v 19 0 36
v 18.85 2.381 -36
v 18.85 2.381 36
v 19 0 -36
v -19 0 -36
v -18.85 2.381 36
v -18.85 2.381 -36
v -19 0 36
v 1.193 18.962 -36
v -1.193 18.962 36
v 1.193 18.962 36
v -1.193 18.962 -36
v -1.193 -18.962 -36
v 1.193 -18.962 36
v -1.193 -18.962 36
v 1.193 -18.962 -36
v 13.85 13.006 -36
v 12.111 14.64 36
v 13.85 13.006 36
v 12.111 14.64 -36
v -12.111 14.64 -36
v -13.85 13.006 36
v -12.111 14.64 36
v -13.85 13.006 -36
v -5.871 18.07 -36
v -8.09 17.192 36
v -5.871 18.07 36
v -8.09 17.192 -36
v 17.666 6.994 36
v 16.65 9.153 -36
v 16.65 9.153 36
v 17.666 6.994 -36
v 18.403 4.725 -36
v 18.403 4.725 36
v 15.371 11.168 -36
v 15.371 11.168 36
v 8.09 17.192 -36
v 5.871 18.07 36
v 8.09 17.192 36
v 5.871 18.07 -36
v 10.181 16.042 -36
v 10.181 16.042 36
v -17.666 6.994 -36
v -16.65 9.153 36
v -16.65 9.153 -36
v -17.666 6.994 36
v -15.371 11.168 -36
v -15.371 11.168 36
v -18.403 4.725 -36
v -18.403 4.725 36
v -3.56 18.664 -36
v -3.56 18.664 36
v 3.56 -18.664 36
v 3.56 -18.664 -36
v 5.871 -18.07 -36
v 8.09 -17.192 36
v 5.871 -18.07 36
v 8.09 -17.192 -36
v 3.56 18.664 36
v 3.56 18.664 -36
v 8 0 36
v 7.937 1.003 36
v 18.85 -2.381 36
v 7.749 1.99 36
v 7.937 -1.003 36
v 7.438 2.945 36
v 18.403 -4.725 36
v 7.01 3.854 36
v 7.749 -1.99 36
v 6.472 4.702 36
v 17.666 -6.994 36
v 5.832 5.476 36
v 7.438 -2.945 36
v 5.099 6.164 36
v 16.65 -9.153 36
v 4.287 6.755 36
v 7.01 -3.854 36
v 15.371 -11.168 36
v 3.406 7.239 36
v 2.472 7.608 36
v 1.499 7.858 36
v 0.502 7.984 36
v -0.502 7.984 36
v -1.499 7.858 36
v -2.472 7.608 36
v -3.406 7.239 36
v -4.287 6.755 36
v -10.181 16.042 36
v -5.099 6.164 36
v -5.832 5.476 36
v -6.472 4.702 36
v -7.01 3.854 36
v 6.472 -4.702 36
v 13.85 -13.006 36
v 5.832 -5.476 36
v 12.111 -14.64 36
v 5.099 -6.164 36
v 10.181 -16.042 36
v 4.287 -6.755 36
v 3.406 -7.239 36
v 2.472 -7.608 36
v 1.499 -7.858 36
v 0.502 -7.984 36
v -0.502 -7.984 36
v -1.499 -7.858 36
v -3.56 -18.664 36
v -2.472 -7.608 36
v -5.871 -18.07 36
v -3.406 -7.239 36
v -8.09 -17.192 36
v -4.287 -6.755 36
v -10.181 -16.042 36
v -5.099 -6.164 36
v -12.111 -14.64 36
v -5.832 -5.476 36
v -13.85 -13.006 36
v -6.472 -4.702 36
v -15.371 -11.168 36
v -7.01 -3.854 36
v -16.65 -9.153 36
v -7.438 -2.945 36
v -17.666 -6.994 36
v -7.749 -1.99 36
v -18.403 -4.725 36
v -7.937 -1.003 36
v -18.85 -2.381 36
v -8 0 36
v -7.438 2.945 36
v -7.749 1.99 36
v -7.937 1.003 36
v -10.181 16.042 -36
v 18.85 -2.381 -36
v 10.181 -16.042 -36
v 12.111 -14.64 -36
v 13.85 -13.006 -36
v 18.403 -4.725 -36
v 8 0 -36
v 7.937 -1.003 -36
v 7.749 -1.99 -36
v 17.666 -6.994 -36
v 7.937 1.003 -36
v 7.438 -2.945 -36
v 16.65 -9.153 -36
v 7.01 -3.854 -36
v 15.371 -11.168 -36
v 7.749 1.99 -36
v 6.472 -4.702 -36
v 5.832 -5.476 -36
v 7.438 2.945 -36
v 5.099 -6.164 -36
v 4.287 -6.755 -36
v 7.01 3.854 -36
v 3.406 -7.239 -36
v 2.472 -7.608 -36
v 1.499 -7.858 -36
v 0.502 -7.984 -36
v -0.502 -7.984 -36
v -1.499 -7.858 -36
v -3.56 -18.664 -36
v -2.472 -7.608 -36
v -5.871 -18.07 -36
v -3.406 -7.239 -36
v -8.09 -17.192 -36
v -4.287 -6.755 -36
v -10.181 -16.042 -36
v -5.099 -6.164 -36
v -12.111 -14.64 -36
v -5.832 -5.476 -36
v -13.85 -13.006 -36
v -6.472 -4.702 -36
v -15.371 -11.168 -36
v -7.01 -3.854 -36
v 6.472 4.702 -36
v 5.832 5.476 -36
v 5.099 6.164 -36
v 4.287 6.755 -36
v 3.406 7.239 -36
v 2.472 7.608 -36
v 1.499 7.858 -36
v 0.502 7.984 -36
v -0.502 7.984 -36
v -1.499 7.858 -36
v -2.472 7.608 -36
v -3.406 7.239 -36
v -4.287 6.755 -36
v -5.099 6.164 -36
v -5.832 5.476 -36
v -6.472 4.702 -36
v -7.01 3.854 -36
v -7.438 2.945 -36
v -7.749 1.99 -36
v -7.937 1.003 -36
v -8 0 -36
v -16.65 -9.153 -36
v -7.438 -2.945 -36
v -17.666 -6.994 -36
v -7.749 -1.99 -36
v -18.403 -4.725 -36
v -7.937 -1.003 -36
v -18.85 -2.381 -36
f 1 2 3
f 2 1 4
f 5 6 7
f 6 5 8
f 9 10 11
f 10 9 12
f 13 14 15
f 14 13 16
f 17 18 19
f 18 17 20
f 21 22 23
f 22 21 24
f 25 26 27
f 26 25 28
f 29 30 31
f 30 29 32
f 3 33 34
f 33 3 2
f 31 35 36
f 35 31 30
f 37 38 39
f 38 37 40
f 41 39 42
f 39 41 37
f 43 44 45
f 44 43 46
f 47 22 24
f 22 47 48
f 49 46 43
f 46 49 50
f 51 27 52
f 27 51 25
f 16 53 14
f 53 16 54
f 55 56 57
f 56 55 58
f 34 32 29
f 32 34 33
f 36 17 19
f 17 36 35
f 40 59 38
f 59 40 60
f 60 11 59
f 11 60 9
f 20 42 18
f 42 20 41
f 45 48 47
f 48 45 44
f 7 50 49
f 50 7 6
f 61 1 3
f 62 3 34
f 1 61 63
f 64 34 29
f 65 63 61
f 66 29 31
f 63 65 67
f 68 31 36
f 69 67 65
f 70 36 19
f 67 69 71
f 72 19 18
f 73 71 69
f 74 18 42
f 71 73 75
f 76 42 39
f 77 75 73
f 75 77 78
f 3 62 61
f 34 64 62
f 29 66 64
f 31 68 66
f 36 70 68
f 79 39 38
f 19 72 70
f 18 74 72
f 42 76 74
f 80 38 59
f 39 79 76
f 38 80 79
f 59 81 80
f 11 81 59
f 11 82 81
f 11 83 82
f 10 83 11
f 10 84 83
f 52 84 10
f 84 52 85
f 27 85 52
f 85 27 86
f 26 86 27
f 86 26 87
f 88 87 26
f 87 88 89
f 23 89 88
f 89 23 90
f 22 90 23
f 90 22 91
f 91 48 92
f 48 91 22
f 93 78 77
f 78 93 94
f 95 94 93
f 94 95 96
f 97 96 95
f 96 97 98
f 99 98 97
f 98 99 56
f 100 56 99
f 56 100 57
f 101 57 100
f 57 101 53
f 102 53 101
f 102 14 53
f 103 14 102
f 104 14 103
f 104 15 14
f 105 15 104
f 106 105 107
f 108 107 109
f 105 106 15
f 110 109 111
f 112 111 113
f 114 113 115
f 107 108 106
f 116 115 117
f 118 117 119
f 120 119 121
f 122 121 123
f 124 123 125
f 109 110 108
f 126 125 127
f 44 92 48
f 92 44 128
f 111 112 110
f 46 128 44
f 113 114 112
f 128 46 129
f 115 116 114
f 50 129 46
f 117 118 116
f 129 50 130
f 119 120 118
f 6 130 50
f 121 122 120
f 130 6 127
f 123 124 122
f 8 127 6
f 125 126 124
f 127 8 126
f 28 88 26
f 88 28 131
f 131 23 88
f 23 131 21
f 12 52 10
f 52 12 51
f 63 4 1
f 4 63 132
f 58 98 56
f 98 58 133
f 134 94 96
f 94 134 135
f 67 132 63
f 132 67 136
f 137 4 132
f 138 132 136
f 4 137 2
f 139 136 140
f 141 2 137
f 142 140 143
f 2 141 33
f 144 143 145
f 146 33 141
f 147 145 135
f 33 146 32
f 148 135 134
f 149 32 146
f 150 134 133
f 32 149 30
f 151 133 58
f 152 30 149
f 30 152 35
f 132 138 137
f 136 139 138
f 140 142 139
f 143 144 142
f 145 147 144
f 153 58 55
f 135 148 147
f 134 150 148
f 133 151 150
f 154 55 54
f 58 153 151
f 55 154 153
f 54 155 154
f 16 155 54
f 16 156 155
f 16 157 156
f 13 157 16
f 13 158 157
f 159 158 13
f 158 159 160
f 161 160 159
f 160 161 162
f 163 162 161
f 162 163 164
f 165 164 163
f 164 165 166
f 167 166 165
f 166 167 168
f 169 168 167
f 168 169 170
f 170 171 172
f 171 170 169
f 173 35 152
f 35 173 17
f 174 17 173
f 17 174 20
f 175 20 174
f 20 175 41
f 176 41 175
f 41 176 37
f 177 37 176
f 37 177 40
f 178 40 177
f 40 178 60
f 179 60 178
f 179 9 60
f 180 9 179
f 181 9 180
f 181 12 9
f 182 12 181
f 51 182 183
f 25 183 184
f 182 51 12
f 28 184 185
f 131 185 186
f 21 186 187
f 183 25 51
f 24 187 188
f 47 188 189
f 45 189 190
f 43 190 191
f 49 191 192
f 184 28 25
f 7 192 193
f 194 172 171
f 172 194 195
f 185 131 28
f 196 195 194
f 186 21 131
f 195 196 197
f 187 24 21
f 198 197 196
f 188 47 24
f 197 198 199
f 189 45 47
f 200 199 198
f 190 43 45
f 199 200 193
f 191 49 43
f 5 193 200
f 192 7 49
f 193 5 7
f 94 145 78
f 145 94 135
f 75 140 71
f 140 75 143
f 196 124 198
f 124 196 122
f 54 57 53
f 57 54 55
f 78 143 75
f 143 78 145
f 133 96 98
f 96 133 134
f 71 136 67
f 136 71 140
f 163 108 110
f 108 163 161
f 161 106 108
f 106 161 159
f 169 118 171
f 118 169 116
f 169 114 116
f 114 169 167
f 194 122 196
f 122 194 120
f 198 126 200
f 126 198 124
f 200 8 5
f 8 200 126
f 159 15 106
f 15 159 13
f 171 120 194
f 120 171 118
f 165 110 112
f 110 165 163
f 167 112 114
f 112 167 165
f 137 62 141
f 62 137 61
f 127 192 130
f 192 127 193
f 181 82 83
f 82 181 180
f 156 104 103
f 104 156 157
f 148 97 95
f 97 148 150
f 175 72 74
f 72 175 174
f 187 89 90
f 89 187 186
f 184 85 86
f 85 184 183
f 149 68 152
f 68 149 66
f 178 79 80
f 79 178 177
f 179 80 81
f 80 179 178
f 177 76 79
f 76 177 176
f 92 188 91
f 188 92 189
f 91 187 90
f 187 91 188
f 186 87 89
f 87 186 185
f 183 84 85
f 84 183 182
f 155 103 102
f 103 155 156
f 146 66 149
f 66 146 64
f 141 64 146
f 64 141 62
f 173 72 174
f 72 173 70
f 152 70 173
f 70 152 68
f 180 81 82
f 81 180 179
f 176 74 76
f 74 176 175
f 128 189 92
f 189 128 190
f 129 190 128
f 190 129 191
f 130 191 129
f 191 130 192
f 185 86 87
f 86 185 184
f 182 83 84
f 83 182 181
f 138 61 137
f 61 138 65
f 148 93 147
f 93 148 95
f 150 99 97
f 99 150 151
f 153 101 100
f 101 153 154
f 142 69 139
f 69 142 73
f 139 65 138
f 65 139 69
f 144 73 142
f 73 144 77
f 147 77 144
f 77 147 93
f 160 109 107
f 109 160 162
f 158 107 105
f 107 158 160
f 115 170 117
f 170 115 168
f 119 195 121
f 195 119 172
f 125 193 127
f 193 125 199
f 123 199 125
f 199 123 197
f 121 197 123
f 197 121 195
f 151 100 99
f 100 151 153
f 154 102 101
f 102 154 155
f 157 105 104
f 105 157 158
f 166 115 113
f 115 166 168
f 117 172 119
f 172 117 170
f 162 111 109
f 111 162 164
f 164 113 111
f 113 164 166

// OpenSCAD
$fn = 50;


difference() {
	union() {
		translate(v = [0, 0, -36.0000000000]) {
			cylinder(h = 72, r = 19.0000000000);
		}
	}
	union() {
		translate(v = [0, 0, -100.0000000000]) {
			cylinder(h = 200, r = 8);
		}
	}
}
